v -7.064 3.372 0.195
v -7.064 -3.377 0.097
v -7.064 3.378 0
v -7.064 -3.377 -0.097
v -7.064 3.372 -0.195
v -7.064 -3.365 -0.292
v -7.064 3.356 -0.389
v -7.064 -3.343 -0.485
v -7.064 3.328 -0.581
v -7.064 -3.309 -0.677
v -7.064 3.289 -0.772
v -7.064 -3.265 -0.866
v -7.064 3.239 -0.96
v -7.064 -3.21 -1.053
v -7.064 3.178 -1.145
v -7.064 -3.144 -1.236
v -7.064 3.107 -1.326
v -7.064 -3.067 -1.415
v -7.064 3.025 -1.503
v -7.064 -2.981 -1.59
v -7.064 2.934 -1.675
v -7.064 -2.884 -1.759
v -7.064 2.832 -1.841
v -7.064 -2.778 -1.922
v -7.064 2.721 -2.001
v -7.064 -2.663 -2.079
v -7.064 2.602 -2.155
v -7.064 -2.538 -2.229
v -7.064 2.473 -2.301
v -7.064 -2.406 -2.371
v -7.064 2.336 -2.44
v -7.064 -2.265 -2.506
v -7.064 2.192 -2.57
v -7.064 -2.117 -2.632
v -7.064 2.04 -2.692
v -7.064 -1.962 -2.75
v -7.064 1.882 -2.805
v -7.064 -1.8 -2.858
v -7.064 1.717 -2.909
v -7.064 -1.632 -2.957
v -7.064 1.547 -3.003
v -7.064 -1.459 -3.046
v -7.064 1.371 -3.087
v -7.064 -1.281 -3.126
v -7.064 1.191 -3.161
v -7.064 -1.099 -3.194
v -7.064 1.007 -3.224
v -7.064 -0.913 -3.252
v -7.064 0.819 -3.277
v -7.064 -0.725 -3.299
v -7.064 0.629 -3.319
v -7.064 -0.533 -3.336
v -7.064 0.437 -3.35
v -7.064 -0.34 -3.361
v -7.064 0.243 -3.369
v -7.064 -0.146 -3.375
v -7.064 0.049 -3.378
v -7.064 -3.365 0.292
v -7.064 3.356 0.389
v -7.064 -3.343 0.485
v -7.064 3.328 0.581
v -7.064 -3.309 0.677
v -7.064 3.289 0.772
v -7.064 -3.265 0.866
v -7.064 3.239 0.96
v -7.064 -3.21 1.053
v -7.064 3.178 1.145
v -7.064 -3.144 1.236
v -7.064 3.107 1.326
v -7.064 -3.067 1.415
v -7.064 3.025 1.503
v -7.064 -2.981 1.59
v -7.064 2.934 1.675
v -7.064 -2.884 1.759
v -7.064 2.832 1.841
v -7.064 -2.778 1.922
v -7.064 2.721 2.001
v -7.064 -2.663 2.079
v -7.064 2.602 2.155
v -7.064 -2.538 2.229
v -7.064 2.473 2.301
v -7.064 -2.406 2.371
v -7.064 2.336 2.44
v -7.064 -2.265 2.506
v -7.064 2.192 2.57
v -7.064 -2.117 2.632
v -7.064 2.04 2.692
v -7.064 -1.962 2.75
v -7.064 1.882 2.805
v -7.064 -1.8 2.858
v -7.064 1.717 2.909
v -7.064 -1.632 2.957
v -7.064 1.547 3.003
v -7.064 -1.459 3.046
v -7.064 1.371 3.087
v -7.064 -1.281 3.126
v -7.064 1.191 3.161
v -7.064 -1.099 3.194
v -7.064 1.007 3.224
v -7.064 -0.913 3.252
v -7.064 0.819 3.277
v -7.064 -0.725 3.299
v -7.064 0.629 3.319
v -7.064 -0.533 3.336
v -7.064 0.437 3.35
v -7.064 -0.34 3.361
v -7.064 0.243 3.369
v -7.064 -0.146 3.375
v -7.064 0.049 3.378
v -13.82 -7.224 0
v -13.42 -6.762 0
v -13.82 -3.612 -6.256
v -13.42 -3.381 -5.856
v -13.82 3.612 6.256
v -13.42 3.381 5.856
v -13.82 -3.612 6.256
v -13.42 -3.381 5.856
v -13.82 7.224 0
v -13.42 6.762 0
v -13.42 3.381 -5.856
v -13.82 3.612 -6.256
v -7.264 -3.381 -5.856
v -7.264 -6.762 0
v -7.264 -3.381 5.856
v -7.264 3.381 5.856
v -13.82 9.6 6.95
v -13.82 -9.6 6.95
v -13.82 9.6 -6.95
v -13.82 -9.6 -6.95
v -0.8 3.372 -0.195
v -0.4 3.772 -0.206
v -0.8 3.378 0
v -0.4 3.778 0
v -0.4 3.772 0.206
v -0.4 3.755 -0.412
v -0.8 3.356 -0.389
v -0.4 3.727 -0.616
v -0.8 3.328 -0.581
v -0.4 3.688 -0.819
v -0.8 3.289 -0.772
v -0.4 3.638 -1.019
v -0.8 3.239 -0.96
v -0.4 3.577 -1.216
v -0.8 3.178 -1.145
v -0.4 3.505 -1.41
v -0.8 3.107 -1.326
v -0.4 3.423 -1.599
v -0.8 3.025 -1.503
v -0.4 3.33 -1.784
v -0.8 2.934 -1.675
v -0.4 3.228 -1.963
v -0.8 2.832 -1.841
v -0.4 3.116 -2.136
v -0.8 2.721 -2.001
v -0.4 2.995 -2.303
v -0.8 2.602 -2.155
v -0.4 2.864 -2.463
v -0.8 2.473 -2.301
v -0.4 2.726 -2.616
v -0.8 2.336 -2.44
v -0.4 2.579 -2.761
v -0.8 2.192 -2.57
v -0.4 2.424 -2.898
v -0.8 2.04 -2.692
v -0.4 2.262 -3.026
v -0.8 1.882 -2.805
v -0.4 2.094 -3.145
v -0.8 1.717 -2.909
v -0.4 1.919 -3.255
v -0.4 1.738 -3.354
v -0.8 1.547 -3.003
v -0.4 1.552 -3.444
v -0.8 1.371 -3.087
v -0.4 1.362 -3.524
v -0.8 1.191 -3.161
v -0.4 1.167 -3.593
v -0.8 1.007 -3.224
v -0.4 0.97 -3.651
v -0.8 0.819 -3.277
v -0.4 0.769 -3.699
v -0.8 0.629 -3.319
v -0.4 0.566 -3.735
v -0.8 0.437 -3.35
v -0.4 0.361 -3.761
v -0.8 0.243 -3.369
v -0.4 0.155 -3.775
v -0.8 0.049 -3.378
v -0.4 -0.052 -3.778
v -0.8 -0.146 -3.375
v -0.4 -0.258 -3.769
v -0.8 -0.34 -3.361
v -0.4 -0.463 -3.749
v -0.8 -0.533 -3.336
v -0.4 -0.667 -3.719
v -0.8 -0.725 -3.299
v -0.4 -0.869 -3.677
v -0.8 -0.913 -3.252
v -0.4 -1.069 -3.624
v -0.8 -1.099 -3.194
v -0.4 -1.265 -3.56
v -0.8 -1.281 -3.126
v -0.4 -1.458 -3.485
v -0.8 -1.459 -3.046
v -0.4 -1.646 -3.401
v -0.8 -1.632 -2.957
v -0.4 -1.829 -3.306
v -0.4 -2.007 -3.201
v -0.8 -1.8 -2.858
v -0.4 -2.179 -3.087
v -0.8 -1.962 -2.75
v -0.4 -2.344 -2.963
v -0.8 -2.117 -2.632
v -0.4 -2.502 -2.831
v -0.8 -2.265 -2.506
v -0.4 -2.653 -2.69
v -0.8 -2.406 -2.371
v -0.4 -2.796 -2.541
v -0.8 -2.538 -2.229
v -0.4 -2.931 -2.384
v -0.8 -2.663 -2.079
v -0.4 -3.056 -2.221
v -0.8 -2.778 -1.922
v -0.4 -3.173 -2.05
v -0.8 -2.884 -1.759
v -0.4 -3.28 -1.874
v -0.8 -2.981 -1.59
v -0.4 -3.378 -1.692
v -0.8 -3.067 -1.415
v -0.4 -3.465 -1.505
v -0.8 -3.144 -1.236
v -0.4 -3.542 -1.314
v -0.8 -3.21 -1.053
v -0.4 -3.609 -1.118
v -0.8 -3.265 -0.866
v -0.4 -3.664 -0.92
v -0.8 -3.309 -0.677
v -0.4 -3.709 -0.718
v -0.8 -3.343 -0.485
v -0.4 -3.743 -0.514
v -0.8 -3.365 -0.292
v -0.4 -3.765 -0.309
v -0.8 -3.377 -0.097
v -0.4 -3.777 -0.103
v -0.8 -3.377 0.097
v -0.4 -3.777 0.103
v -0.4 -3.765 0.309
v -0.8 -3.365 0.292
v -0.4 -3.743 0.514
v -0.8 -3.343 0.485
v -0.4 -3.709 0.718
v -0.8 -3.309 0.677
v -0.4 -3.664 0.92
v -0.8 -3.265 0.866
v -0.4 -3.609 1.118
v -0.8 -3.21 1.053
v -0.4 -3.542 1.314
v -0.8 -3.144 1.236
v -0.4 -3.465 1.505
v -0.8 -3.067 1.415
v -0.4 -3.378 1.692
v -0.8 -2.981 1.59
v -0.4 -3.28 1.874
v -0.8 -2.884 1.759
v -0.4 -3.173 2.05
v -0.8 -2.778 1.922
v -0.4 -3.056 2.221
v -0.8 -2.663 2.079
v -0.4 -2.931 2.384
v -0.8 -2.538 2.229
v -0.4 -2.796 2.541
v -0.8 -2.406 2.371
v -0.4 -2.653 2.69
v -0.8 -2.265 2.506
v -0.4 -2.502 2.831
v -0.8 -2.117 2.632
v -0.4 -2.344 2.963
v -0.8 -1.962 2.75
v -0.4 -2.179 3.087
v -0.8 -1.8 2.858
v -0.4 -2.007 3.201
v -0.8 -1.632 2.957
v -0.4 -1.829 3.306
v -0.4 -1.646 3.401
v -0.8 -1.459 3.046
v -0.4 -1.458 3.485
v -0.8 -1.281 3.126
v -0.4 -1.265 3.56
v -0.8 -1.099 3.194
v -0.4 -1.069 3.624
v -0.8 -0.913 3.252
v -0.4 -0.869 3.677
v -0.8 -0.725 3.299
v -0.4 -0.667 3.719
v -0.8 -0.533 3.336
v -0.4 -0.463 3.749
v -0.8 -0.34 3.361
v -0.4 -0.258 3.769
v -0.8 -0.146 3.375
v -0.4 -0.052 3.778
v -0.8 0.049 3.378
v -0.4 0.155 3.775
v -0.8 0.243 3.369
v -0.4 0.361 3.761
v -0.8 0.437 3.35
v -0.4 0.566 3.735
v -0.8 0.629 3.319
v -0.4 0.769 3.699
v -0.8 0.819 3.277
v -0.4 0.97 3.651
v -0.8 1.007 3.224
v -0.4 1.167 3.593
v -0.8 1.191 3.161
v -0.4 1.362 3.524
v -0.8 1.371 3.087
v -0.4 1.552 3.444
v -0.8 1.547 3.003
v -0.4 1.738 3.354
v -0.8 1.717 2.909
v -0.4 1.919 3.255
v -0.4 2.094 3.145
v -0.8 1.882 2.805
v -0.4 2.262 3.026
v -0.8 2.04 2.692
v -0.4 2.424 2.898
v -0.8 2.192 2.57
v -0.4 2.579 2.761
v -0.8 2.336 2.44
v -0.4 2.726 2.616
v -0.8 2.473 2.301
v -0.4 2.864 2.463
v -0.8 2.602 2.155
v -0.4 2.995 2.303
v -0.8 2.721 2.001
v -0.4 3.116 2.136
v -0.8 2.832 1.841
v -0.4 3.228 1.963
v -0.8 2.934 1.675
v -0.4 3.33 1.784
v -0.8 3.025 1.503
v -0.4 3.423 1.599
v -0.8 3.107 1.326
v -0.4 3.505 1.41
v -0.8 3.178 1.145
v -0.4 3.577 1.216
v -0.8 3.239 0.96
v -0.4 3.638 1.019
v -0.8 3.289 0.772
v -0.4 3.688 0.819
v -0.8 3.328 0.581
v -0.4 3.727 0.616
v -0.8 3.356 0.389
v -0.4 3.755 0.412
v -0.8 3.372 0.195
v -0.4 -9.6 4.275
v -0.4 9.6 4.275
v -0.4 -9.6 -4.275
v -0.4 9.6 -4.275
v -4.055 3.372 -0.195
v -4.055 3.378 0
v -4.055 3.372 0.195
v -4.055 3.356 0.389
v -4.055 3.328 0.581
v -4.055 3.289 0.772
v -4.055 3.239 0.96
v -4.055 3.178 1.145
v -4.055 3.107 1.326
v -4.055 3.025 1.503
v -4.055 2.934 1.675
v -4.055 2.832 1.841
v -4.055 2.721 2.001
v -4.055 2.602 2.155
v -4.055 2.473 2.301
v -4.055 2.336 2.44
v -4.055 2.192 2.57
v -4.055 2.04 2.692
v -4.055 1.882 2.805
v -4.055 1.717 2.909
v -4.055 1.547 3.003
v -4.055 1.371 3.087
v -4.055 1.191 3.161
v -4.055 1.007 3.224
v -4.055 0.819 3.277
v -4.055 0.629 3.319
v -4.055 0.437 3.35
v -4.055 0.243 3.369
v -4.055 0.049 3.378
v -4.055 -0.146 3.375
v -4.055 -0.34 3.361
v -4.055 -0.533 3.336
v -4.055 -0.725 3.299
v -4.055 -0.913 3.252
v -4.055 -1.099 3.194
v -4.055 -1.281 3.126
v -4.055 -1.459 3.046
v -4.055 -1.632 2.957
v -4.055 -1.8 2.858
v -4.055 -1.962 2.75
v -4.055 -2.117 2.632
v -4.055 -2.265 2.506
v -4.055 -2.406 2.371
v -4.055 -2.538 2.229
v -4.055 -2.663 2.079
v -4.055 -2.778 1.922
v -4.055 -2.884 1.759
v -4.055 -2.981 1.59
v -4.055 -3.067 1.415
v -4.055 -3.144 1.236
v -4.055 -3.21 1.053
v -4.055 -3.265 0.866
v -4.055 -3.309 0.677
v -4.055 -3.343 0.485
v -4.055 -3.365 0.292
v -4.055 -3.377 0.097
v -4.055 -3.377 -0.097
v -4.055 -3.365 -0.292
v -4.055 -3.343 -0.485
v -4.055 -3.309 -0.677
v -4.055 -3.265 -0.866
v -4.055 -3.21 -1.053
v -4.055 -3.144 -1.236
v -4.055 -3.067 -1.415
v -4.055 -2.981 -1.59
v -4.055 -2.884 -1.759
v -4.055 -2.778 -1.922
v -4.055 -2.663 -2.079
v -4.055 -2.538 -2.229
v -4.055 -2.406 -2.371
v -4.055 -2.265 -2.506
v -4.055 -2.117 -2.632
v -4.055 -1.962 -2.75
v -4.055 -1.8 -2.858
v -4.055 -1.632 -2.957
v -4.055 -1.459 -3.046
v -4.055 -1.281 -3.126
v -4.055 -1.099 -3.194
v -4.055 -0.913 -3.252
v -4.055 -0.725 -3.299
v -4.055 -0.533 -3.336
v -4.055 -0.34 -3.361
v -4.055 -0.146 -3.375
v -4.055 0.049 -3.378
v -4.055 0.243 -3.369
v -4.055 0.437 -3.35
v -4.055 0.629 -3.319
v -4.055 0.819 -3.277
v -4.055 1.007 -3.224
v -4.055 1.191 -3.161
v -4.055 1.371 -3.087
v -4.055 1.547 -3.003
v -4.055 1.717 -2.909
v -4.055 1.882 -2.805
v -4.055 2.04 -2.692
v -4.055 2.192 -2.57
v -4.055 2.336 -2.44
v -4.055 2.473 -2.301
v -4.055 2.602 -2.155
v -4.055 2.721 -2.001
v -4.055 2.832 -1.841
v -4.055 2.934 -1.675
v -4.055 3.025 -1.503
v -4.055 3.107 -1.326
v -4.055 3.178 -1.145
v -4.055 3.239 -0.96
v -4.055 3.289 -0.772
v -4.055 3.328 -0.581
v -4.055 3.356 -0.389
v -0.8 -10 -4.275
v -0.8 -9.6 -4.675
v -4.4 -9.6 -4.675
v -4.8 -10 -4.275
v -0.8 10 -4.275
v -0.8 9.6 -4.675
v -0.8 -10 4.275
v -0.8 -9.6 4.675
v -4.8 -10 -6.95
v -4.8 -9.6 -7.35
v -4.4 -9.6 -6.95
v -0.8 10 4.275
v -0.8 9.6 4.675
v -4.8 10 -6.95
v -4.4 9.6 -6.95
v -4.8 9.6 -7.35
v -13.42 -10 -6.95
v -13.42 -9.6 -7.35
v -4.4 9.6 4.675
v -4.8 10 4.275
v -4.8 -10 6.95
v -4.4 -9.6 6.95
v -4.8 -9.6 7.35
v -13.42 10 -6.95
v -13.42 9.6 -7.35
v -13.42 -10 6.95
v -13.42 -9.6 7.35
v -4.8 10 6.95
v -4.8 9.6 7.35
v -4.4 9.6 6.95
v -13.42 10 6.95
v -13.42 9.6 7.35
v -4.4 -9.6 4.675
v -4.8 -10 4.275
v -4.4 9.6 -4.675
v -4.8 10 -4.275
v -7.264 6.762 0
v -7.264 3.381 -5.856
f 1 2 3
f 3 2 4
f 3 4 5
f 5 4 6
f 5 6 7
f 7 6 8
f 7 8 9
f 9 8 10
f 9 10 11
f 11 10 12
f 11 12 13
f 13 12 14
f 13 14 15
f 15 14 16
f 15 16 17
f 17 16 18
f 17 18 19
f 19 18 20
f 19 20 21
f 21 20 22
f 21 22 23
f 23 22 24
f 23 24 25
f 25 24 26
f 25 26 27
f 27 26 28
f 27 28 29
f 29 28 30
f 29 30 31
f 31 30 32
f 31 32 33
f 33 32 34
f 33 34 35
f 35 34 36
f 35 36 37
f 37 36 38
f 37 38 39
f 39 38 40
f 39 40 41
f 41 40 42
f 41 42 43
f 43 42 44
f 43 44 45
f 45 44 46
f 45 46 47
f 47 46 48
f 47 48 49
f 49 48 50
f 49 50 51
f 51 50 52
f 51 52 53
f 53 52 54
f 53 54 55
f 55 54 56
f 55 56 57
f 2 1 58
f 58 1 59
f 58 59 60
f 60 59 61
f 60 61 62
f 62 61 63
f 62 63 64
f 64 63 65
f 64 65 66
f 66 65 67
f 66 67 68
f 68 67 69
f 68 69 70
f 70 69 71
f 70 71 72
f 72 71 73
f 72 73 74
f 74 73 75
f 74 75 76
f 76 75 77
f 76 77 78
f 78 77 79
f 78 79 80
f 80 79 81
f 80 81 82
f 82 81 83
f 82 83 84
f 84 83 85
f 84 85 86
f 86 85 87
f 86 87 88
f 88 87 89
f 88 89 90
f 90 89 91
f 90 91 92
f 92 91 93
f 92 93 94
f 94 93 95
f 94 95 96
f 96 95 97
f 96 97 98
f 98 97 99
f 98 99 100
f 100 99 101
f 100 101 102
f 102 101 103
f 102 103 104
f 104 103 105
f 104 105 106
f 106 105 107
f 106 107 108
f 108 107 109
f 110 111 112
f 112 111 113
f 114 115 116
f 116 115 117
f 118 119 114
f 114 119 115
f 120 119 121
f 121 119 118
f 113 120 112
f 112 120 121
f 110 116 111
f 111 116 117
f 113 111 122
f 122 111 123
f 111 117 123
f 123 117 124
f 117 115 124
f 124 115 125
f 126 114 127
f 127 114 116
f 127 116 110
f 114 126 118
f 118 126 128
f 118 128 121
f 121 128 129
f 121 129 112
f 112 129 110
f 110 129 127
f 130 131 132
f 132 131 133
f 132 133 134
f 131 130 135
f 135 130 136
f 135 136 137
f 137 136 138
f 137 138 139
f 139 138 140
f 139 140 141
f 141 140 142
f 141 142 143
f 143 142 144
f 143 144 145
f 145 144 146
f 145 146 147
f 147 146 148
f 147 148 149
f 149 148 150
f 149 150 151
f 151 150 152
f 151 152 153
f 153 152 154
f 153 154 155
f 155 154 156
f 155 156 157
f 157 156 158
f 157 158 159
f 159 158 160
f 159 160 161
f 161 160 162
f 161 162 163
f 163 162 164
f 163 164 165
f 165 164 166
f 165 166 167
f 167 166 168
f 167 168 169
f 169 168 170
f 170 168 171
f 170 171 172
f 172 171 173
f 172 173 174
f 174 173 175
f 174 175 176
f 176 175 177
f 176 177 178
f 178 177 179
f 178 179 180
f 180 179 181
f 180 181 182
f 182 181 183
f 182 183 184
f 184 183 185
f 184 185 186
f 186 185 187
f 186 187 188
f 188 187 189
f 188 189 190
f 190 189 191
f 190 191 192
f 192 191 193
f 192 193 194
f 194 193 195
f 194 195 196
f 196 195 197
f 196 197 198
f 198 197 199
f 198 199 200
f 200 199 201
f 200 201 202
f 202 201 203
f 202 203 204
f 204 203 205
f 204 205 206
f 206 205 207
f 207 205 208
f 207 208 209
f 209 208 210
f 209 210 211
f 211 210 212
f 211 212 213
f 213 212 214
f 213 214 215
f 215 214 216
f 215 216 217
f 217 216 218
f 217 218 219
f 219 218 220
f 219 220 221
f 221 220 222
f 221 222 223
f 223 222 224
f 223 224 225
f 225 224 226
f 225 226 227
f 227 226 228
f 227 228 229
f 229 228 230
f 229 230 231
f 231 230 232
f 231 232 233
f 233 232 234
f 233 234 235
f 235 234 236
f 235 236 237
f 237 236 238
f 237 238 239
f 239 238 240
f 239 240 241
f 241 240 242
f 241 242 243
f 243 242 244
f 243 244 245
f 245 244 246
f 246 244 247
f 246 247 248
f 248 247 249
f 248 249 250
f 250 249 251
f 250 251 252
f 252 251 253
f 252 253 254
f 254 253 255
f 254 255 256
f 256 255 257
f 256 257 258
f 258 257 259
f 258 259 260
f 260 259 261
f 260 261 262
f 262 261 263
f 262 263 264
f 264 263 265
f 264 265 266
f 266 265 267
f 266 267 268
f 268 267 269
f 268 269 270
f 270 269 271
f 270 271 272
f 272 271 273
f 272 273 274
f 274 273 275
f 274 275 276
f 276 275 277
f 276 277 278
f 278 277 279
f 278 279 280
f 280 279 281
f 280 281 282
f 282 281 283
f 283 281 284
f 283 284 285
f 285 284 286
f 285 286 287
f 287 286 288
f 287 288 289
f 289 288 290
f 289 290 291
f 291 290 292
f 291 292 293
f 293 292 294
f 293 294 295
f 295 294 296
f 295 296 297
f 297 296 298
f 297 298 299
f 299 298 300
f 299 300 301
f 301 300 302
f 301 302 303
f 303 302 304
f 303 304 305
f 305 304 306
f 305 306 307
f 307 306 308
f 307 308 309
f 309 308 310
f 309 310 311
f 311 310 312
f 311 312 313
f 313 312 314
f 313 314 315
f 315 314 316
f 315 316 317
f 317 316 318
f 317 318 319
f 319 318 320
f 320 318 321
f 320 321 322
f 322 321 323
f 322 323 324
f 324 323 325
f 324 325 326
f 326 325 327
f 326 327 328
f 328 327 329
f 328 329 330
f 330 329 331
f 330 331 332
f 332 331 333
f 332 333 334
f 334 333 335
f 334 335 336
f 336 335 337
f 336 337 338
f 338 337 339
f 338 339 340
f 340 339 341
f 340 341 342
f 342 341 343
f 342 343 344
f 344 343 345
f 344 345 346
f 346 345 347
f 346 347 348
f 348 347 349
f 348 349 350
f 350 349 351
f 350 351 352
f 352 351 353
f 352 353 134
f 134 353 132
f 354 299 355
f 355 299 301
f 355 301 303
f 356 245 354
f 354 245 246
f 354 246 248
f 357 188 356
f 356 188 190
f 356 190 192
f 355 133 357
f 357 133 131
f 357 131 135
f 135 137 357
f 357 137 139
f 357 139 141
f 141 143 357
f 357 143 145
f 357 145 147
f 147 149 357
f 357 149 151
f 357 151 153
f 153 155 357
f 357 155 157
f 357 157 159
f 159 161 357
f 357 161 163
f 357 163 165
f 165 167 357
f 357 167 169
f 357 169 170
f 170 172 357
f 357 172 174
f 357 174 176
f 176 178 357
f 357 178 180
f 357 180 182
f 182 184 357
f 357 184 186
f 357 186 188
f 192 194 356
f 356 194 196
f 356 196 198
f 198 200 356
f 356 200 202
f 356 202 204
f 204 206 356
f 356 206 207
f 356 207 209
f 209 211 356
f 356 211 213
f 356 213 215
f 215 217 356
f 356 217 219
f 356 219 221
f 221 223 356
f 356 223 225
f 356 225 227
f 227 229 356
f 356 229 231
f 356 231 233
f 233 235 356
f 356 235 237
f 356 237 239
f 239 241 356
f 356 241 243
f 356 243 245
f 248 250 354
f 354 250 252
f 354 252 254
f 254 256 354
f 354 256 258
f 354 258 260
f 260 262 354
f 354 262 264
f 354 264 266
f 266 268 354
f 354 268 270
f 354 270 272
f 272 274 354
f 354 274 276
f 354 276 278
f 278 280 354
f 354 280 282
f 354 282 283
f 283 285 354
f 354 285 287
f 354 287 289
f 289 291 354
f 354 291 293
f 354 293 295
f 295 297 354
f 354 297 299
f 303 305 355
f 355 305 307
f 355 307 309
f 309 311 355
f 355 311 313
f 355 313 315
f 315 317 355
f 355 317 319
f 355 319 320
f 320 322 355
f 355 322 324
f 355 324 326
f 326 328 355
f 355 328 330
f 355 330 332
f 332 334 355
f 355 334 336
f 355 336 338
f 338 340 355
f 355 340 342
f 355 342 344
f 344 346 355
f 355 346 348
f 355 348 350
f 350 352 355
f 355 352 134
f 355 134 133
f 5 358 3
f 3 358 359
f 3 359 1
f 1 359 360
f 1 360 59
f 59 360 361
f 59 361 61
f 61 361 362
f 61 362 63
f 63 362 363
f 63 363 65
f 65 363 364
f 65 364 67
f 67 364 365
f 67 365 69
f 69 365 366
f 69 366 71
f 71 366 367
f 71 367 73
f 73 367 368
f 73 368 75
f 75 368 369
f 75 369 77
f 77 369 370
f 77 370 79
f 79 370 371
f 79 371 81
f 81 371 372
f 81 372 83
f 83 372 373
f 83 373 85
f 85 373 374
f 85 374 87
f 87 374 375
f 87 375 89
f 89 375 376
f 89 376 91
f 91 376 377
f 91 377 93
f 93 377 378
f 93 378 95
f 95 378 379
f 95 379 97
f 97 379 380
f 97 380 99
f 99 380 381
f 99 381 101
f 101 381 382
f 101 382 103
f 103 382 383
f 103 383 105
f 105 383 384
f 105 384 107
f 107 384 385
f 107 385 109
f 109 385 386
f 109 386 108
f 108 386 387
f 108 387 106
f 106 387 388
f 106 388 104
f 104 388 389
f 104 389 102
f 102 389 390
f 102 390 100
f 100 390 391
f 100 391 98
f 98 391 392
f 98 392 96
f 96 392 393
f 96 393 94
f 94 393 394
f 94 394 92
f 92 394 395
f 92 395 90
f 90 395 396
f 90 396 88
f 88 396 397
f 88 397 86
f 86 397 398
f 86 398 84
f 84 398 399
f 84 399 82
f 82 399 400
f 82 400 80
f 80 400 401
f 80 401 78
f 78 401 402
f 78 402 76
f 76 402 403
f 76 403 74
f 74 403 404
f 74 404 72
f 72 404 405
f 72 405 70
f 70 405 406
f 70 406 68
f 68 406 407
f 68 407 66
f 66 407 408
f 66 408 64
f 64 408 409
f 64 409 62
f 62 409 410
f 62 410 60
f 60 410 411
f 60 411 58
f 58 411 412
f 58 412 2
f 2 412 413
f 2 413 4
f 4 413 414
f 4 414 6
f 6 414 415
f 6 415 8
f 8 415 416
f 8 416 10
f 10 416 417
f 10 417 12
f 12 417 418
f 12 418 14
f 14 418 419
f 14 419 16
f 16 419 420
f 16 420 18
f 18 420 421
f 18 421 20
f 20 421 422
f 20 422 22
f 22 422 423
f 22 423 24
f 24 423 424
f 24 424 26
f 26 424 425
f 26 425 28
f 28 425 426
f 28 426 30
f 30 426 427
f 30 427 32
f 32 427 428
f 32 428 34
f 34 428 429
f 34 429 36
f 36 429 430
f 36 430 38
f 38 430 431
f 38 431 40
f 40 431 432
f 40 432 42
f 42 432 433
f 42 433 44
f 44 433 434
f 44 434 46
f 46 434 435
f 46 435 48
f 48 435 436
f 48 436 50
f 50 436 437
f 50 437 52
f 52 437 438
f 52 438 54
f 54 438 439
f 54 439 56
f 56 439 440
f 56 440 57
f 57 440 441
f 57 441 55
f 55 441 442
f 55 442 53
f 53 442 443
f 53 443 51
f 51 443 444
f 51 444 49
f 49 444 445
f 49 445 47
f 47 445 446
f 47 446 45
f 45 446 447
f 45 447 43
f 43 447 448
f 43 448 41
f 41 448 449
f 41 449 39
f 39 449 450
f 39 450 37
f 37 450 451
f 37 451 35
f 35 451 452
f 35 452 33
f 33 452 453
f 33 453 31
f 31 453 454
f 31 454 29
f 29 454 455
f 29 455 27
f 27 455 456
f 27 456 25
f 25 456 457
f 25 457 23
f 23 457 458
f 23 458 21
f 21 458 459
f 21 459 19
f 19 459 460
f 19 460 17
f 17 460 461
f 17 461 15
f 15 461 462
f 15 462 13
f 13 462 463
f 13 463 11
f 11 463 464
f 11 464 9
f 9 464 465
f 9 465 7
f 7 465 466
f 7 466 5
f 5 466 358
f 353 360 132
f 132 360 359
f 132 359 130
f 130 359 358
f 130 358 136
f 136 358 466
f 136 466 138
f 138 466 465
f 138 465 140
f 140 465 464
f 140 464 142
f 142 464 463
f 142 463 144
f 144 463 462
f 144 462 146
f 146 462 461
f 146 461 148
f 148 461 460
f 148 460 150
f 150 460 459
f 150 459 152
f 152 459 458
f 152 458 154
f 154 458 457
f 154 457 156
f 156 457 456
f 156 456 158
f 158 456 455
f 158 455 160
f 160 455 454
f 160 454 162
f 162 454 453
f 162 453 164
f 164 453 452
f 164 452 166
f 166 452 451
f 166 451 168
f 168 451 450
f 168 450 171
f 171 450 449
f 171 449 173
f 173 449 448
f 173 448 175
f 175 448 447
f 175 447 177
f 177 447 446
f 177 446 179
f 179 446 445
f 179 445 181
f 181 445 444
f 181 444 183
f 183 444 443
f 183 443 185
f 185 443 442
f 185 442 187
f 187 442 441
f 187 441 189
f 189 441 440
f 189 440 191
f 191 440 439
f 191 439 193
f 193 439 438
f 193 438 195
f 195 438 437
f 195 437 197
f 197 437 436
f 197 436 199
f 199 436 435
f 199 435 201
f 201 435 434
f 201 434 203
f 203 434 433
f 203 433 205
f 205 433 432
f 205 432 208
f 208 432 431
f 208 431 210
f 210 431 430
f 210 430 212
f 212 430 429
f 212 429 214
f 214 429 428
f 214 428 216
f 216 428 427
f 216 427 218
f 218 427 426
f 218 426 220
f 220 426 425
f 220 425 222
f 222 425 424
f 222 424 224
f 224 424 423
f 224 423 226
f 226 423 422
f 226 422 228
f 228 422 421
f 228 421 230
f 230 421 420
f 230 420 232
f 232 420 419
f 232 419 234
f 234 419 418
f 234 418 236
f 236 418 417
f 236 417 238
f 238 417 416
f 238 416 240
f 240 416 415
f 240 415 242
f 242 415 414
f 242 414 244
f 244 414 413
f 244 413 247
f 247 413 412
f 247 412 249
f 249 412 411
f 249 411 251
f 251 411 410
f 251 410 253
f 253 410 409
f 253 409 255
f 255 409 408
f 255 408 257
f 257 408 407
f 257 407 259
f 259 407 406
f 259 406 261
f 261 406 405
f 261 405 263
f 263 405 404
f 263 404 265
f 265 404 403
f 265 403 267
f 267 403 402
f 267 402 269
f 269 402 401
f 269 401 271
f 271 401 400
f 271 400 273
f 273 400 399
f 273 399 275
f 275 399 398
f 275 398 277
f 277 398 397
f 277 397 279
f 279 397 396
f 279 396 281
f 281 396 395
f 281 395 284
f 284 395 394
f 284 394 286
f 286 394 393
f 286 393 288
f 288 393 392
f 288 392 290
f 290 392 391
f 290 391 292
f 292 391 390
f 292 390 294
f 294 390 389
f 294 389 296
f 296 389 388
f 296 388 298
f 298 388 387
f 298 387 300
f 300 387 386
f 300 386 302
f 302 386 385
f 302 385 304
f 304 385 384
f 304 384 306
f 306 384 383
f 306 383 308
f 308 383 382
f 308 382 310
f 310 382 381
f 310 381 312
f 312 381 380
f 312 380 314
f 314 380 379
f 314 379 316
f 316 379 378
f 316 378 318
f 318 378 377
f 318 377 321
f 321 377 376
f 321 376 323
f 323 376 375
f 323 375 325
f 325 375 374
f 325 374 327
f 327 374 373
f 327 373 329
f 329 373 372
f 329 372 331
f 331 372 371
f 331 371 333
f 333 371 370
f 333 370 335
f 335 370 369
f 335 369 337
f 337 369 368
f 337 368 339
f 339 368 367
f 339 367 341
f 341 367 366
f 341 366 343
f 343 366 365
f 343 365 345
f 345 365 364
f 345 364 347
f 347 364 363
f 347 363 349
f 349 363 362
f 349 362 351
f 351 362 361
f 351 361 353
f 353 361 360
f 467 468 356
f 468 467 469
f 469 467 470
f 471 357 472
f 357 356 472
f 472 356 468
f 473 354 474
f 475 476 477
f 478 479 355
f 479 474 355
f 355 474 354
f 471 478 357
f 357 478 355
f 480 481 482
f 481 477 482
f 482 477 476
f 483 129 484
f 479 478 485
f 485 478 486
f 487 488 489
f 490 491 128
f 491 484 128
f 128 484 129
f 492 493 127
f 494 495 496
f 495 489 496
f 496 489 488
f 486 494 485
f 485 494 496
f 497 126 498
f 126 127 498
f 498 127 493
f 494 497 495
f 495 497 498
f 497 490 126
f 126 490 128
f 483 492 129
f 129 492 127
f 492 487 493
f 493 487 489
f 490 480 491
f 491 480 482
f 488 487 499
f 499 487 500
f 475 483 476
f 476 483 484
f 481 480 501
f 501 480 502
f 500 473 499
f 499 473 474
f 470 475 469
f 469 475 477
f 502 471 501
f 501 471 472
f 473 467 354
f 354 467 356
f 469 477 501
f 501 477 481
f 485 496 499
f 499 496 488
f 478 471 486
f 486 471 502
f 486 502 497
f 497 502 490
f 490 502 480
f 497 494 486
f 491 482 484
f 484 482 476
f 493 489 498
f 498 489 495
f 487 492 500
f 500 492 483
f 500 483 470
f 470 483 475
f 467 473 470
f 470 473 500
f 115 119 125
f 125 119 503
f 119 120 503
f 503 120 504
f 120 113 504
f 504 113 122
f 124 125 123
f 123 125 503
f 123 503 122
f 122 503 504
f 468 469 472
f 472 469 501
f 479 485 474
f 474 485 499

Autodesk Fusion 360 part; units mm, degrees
sketch "Sketch1" plane through (0, 0, 0) normal (0, 1, 0) x (1, 0, 0)
  line L0 (-18.22, -14.04) -> (0, -14.04)
  line L1 (0, -14.04) -> (0, 14.04)
  line L2 (0, 14.04) -> (-18.22, 14.04)
  line L3 (-18.22, 14.04) -> (-18.22, -14.04)
  line L4 (0, -5.075) -> (-4, -5.075)
  line L5 (-4, -5.075) -> (-4, -7.75)
  line L6 (-4, -7.75) -> (-14.22, -7.75)
  line L7 (0, 5.075) -> (-4, 5.075)
  line L8 (-4, 5.075) -> (-4, 7.75)
  line L9 (-4, 7.75) -> (-14.22, 7.75)
  line L10 (-14.22, 7.75) -> (-14.22, -7.75)
  line L11 (-18.22, 0) -> (0, 0) construction
  line L12 (-4, -5.075) -> (-4, 5.075) construction
  point P0 (-14.22, 0)
  point P1 (-4, 0)
  dimension "d1" = 28.08
  dimension "d2" = 10.15
  dimension "d3" = 4
  dimension "d4" = 10.22
  dimension "d5" = 15.5
  dimension "d6" = 2.675
  dimension "d7" = 14.22
  dimension "d10" = 4
extrude "Extrude1" add sketch "Sketch1" along normal blind 100 contours L0 L1 L2 L3 L4 L5 L6 L7 L8 L9 L10 makes body 1
sketch "Sketch2" plane through (0, 0, 0) normal (0, 1, 0) x (1, 0, 0)
  line L0 (-4, -7.75) -> (-14.22, -7.75)
  line L1 (-14.22, 7.75) -> (-14.22, -7.75)
  line L2 (-4, 7.75) -> (-14.22, 7.75)
  line L3 (-4, 5.075) -> (-4, 7.75)
  line L4 (0, 5.075) -> (-4, 5.075)
  line L5 (0, -5.075) -> (-4, -5.075)
  line L6 (-4, -5.075) -> (-4, -7.75)
  line L7 (0, -14.04) -> (0, 14.04)
  line L8 (0, 5.075) -> (0, -5.075)
  line L9 (-0.4, -4.675) -> (-4.4, -4.675)
  line L10 (-4.4, -4.675) -> (-4.4, -7.35)
  line L11 (-4.4, -7.35) -> (-13.82, -7.35)
  line L12 (-13.82, 7.35) -> (-13.82, -7.35)
  line L13 (-4.4, 7.35) -> (-13.82, 7.35)
  line L14 (-4.4, 4.675) -> (-4.4, 7.35)
  line L15 (-0.4, 4.675) -> (-4.4, 4.675)
  line L16 (-0.4, 4.675) -> (-0.4, -4.675)
  dimension "d11" = 0.4
extrude "Extrude2" add sketch "Sketch2" along normal mid plane 20 separate body contours L9 L10 L11 L12 L13 L14 L15 L16 makes body 2
sketch "Sketch4" plane through (-13.82, 0, 0) normal (-1, 0, 0) x (0, -1, 0)
  line L0 (10, 7.35) -> (-10, 7.35)
  line L1 (-10, 7.35) -> (-10, -7.35)
  line L2 (-10, -7.35) -> (10, -7.35)
  line L3 (10, -7.35) -> (10, 7.35)
  line L4 (3.3811, 5.8563) -> (-3.3811, 5.8562)
  line L5 (-3.3811, 5.8562) -> (-6.7622, 0)
  line L6 (-6.7622, 0) -> (-3.3811, -5.8563)
  line L7 (-3.3811, -5.8563) -> (3.3811, -5.8563)
  line L8 (3.3811, -5.8563) -> (6.7622, 0)
  line L9 (6.7622, 0) -> (3.3811, 5.8563)
  line L10 (0, 0) -> (10, 0) construction
  circle A0 centre (0, 0) radius 3.378
  dimension "d14" = 11.7125
  dimension "d23" = 6.756
extrude "Extrude3" cut sketch "Sketch4" against normal blind 6.5563 contours L4 L5 L6 L7 L8 L9 bodies 2
extrude "Extrude4" cut sketch "Sketch4" against normal blind 25.66 contours A0 bodies 2
chamfer "Chamfer1" distance 0.4 angle 45 23 edges at (-9.11, 10, 7.35) (-4.4, 0, 7.35) (-9.11, -10, 7.35) (-4.4, 10, 6.0125) (-2.4, 10, 4.675) (-0.4, 10, 0) (-2.4, 10, -4.675) (-4.4, 10, -6.0125) (-9.11, 10, -7.35) (-4.4, 0, -7.35) (-4.4, -10, 6.0125) (-2.4, -10, 4.675) (-0.4, -10, 0) (-2.4, -10, -4.675) (-4.4, -10, -6.0125) (-9.11, -10, -7.35) (-0.4, 0, 4.675) (-0.4, 0, -4.675) (-0.4, 3.1494, -1.2215) (-13.82, 0, 7.35) (-13.82, -10, 0) (-13.82, 0, -7.35) (-13.82, 10, 0) on bodies 2
chamfer "Chamfer2" distance 0.4 angle 45 6 edges at (-13.82, 5.0717, 2.9281) (-13.82, 0, 5.8563) (-13.82, -5.0717, 2.9281) (-13.82, -5.0717, -2.9281) (-13.82, 0, -5.8563) (-13.82, 5.0717, -2.9281) on bodies 2
sketch "Sketch5" plane through (-7.2638, 0, 0) normal (-1, 0, 0) x (0, -1, 0)
  circle A0 centre (0, 0) radius 3.378
  line L0 (6.7622, 0) -> (3.3811, 5.8563)
  line L1 (3.3811, 5.8563) -> (-3.3811, 5.8562)
  line L2 (-3.3811, 5.8562) -> (-6.7622, 0)
  line L3 (-6.7622, 0) -> (-3.3811, -5.8563)
  line L4 (-3.3811, -5.8563) -> (3.3811, -5.8563)
  line L5 (3.3811, -5.8563) -> (6.7622, 0)
extrude "Extrude5" add sketch "Sketch5" against normal blind 0.2 contours A0 bodies 2
hidden bodies 1
equation "d14 = 7 in / 16 + 0.6 mm"
equation "d15 = -7 in / 32 - 1 mm"
